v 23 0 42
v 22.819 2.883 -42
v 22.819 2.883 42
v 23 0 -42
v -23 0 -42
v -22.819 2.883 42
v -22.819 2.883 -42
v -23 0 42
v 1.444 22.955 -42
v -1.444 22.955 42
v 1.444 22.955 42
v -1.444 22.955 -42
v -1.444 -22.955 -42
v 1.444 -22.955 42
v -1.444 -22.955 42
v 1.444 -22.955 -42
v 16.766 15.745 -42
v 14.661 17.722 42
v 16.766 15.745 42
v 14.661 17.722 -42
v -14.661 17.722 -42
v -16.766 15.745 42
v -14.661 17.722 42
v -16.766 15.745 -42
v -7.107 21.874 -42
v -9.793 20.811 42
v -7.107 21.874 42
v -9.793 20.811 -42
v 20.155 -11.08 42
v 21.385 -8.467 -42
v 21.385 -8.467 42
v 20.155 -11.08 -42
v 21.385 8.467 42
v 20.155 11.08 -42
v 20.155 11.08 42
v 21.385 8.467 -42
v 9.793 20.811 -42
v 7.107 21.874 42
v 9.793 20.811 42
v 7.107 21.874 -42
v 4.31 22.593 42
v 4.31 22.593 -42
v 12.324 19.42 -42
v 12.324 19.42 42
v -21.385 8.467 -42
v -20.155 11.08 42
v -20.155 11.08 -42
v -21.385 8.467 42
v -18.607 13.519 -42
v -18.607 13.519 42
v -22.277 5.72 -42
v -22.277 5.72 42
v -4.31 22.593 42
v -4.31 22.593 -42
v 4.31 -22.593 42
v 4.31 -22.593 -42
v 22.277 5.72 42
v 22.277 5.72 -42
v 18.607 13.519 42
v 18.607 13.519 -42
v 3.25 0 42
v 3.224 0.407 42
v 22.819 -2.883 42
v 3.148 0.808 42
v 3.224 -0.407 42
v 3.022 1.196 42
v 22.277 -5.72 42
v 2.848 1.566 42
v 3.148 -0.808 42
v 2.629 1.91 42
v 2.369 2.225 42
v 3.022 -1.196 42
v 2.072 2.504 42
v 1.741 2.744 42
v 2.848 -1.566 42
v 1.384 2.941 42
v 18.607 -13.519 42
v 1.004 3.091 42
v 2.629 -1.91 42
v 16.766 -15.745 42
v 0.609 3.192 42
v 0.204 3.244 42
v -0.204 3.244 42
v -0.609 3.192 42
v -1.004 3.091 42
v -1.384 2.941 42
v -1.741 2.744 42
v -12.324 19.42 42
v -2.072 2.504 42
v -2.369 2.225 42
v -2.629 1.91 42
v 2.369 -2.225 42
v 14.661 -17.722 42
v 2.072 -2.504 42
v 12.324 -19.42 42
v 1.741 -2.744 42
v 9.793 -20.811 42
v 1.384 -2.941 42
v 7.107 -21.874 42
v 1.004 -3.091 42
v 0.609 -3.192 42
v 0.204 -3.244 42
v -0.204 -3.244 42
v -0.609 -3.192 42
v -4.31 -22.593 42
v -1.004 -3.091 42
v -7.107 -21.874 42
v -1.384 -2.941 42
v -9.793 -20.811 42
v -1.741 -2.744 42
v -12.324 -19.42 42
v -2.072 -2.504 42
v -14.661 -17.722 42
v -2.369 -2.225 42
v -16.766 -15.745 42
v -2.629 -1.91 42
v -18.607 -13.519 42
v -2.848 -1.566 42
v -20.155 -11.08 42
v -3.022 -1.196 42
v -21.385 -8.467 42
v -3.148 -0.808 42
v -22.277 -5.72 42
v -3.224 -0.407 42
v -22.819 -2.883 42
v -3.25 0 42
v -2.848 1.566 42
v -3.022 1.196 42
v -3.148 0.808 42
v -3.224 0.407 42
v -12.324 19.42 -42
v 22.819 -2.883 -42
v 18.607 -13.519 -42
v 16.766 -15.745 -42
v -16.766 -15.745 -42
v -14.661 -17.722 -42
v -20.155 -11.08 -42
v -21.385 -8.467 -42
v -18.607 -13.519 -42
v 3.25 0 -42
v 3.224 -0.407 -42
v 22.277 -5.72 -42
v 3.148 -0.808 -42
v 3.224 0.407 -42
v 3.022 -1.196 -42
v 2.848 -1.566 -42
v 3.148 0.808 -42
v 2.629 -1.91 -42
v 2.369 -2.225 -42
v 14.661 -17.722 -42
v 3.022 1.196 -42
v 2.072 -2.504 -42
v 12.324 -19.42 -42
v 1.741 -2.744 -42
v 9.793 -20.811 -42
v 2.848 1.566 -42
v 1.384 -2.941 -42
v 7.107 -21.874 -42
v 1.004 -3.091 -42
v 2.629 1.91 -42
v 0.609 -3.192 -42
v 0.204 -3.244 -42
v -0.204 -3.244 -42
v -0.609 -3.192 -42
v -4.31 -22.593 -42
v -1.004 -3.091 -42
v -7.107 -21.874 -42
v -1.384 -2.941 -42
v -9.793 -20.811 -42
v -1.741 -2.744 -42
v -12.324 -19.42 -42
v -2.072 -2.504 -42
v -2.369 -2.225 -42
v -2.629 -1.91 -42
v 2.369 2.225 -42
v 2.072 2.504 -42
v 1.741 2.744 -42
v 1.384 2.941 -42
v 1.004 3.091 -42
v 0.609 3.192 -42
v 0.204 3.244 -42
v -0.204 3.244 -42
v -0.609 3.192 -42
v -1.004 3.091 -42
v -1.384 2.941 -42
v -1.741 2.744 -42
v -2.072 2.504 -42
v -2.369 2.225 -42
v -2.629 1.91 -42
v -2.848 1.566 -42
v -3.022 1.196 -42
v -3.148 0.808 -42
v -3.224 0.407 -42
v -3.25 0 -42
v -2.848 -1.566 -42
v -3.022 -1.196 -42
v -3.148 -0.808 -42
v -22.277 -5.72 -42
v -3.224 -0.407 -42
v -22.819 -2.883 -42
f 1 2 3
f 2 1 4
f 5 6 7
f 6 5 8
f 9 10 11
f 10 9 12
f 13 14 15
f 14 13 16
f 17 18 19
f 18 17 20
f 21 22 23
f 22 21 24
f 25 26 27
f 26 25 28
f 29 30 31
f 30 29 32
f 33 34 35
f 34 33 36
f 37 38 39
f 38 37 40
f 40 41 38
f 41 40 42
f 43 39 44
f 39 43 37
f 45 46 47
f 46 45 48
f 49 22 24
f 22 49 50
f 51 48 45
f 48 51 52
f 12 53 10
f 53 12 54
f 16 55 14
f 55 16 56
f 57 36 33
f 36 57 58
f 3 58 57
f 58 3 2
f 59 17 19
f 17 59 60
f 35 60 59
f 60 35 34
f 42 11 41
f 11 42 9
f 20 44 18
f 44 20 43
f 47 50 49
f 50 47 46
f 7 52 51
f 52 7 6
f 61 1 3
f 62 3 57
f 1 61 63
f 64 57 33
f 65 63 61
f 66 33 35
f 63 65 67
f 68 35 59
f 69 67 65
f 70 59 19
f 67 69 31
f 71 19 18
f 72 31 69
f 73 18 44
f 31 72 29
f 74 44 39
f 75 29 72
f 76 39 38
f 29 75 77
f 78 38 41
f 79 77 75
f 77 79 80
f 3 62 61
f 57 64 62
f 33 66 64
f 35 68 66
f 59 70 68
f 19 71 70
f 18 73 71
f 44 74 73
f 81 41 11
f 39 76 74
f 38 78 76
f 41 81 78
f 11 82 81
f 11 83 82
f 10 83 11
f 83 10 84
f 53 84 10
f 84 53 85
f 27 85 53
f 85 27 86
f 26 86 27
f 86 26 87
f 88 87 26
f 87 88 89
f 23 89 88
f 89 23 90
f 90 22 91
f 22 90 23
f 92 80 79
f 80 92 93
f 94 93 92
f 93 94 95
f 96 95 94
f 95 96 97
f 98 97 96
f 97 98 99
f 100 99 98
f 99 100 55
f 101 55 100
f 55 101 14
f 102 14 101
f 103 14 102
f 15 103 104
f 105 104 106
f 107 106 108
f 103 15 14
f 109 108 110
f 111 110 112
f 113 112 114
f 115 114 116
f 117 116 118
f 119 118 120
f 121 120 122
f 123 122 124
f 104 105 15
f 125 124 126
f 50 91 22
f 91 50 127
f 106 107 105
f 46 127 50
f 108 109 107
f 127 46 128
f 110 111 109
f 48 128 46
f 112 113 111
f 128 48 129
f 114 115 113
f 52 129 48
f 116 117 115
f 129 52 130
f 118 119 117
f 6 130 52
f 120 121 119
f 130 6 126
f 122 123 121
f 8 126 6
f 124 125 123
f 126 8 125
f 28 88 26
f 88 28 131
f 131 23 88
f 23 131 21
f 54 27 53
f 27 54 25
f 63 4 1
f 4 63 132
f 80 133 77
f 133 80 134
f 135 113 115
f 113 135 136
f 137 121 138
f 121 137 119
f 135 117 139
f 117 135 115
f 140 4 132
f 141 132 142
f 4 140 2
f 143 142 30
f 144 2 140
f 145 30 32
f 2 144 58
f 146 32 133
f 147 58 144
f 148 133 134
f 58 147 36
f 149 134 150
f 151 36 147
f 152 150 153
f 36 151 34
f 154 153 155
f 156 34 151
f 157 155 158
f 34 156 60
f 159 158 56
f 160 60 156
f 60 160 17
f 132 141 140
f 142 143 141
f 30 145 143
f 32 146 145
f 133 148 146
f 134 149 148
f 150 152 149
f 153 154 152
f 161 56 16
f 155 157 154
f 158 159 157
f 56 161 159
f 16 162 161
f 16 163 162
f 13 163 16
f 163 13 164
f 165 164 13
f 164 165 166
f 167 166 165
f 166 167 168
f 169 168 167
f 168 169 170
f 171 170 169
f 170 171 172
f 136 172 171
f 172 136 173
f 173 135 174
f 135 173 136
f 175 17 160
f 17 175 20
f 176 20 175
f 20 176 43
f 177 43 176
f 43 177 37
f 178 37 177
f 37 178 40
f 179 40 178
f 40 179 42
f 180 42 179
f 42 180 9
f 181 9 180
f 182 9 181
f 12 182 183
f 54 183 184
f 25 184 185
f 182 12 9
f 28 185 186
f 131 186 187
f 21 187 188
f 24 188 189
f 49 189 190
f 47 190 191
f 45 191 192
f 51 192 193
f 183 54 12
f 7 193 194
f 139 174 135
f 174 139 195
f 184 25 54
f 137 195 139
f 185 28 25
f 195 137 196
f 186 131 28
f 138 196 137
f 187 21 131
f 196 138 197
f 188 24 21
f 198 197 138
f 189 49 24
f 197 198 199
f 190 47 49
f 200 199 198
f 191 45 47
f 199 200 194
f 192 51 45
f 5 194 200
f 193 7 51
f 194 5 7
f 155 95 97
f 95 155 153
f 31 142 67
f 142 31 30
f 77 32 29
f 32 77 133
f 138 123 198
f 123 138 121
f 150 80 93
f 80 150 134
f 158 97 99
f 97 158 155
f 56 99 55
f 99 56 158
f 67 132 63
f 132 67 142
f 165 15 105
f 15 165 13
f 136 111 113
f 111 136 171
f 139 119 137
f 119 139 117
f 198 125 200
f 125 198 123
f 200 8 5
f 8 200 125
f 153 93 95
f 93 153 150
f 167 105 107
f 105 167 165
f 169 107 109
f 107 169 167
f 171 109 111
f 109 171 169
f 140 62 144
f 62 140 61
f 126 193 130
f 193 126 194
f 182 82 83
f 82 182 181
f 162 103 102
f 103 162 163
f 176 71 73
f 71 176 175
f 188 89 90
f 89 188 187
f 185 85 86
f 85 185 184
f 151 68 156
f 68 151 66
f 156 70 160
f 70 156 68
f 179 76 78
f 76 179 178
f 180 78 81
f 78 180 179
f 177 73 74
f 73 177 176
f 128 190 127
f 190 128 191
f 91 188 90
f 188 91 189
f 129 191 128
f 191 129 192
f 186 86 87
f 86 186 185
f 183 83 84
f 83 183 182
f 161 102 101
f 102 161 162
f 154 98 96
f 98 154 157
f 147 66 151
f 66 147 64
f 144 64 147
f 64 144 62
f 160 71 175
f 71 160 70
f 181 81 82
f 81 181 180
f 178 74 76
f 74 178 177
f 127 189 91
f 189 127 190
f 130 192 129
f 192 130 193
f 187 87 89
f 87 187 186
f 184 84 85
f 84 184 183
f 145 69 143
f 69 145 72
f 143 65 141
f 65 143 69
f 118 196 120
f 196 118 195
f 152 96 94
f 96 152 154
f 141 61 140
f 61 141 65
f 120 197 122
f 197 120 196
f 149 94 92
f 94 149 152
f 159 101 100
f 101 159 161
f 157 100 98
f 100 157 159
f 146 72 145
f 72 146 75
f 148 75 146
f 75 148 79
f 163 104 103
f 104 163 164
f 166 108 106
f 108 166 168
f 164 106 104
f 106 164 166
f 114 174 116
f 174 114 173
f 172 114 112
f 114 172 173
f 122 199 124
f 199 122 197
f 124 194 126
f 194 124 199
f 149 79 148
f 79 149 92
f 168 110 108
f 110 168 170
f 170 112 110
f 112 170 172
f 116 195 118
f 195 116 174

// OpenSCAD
$fn = 50;


difference() {
	union() {
		translate(v = [0, 0, -42.0000000000]) {
			cylinder(h = 84, r = 23.0000000000);
		}
	}
	union() {
		translate(v = [0, 0, -100.0000000000]) {
			cylinder(h = 200, r = 3.2500000000);
		}
	}
}
